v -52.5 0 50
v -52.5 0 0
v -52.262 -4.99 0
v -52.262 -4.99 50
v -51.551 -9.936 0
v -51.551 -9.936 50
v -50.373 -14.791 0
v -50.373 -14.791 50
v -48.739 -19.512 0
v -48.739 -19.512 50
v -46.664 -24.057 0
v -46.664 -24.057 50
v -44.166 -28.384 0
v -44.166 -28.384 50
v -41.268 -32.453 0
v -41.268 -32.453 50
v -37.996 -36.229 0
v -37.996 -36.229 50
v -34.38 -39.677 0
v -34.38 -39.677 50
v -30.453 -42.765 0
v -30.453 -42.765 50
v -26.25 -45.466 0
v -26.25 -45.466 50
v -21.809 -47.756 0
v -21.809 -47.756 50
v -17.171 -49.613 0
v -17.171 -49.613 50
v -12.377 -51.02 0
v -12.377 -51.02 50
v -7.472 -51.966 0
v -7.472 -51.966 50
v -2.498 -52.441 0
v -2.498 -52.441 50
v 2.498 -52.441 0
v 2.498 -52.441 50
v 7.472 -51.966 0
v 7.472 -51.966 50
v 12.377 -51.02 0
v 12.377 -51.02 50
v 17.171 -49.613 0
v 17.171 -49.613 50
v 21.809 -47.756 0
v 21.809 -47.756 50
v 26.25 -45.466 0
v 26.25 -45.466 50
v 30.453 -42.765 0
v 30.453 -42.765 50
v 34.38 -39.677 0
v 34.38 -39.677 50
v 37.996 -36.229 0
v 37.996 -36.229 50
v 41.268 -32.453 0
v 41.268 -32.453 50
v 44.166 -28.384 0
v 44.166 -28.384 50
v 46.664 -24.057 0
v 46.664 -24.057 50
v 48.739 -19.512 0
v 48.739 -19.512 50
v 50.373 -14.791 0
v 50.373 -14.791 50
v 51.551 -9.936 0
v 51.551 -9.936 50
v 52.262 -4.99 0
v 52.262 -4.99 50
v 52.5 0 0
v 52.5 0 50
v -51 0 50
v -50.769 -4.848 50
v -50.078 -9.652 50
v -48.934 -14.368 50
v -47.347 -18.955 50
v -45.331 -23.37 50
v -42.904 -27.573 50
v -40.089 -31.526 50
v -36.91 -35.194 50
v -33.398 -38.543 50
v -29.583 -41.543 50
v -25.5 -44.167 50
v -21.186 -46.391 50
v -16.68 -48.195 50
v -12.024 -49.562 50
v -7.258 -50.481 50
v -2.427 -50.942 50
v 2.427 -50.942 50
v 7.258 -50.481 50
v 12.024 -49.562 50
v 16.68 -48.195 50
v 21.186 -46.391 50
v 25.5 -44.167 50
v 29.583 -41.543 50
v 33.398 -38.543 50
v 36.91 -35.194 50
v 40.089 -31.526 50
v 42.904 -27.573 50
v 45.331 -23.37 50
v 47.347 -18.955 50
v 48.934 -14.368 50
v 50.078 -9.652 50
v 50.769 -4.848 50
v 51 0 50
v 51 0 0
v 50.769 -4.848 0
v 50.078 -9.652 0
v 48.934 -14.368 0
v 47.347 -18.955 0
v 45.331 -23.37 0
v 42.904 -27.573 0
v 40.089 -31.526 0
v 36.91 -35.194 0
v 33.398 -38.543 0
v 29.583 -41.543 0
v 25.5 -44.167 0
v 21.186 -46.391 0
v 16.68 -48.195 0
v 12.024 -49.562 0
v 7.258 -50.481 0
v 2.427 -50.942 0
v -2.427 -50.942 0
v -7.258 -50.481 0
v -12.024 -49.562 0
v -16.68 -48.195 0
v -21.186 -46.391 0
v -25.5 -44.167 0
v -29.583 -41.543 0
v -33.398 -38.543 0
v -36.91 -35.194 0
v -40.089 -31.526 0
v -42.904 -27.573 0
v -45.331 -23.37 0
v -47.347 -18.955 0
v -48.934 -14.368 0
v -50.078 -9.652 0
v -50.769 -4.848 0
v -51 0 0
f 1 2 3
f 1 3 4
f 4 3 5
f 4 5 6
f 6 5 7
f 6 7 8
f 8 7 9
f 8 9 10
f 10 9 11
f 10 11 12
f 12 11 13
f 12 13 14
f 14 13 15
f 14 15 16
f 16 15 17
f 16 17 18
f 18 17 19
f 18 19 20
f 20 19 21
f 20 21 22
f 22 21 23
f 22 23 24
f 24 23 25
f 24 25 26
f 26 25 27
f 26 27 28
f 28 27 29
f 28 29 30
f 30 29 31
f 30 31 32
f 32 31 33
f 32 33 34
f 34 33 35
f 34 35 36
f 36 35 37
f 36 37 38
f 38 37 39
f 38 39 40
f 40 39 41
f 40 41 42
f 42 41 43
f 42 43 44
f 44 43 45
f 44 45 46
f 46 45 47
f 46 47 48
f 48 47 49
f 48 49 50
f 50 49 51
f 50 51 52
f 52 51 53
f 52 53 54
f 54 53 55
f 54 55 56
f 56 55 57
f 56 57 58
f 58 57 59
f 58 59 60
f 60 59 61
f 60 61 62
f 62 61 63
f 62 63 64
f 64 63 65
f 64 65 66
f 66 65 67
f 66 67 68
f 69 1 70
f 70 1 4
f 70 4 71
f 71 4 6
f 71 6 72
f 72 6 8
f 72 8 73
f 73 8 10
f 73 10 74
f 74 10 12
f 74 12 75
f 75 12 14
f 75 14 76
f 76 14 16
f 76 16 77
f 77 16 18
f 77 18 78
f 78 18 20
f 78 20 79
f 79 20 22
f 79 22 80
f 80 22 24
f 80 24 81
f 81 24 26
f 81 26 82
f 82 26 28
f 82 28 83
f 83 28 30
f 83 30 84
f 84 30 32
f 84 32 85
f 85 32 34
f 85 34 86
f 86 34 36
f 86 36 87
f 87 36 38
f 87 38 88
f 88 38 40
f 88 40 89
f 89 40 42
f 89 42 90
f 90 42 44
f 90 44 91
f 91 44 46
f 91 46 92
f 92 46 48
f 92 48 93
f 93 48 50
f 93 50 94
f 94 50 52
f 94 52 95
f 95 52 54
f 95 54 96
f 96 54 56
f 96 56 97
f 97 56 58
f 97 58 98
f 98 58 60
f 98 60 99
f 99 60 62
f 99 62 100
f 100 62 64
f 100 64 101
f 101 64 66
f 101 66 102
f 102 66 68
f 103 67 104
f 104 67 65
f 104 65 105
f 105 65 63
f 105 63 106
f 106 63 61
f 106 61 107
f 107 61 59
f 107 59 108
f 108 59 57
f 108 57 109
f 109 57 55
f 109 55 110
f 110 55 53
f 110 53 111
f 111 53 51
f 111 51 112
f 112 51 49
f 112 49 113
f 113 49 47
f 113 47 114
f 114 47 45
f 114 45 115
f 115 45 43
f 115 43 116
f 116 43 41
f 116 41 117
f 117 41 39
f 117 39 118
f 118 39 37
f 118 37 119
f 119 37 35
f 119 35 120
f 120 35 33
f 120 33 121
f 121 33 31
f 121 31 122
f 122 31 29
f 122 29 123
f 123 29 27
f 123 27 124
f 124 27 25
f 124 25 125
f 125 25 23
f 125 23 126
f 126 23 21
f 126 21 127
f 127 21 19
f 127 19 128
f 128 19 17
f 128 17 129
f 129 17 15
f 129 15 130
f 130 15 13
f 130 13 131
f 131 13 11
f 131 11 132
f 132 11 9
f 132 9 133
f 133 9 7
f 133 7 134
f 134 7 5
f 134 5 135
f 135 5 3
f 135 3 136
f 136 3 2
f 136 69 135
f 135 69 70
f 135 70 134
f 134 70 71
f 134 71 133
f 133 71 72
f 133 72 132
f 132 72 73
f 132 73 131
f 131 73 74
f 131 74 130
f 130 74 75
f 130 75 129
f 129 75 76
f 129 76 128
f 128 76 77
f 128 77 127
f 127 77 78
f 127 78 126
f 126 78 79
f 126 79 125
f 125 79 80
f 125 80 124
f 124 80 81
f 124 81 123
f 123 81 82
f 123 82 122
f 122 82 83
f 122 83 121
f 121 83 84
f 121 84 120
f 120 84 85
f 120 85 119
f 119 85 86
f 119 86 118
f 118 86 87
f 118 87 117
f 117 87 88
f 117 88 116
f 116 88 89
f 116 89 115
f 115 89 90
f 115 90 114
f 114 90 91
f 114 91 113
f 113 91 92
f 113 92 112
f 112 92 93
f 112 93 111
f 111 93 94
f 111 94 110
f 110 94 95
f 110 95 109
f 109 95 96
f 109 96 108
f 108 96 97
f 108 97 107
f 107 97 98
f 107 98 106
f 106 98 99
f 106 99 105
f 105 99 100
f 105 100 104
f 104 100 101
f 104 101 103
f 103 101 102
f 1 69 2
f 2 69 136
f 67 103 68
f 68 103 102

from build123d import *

# Parameters (mm, degrees)
ESQUISSE1_R             = 52.5
BOSS_EXTRU_1_DEPTH      = 50
ESQUISSE2_R             = 51
ENL_V_MAT_EXTRU_1_DEPTH = 90.51256895
ENL_V_MAT_EXTRU_2_DEPTH = 90.51256895


with BuildPart() as part:
    # Esquisse1 → Boss.-Extru.1 (new body)
    with BuildSketch(Plane.XY):
        Circle(ESQUISSE1_R)
    extrude(amount=BOSS_EXTRU_1_DEPTH)

    # Esquisse2 → Enlèv. mat.-Extru.1 (cut, through all)
    with BuildSketch(Plane.XY.offset(50)):
        Circle(ESQUISSE2_R)
    extrude(amount=-ENL_V_MAT_EXTRU_1_DEPTH, mode=Mode.SUBTRACT)

    # Esquisse3 → Enlèv. mat.-Extru.2 (cut, through all)
    with BuildSketch(Plane.XY.offset(50)):
        Polygon((-297.287137637, 0), (-52.5, 0), (52.5, 0), (297.287137637, 0), (297.287137637, 489.574275275), (-297.287137637, 489.574275275), align=None)
    extrude(amount=-ENL_V_MAT_EXTRU_2_DEPTH, mode=Mode.SUBTRACT)


solid = part.part
